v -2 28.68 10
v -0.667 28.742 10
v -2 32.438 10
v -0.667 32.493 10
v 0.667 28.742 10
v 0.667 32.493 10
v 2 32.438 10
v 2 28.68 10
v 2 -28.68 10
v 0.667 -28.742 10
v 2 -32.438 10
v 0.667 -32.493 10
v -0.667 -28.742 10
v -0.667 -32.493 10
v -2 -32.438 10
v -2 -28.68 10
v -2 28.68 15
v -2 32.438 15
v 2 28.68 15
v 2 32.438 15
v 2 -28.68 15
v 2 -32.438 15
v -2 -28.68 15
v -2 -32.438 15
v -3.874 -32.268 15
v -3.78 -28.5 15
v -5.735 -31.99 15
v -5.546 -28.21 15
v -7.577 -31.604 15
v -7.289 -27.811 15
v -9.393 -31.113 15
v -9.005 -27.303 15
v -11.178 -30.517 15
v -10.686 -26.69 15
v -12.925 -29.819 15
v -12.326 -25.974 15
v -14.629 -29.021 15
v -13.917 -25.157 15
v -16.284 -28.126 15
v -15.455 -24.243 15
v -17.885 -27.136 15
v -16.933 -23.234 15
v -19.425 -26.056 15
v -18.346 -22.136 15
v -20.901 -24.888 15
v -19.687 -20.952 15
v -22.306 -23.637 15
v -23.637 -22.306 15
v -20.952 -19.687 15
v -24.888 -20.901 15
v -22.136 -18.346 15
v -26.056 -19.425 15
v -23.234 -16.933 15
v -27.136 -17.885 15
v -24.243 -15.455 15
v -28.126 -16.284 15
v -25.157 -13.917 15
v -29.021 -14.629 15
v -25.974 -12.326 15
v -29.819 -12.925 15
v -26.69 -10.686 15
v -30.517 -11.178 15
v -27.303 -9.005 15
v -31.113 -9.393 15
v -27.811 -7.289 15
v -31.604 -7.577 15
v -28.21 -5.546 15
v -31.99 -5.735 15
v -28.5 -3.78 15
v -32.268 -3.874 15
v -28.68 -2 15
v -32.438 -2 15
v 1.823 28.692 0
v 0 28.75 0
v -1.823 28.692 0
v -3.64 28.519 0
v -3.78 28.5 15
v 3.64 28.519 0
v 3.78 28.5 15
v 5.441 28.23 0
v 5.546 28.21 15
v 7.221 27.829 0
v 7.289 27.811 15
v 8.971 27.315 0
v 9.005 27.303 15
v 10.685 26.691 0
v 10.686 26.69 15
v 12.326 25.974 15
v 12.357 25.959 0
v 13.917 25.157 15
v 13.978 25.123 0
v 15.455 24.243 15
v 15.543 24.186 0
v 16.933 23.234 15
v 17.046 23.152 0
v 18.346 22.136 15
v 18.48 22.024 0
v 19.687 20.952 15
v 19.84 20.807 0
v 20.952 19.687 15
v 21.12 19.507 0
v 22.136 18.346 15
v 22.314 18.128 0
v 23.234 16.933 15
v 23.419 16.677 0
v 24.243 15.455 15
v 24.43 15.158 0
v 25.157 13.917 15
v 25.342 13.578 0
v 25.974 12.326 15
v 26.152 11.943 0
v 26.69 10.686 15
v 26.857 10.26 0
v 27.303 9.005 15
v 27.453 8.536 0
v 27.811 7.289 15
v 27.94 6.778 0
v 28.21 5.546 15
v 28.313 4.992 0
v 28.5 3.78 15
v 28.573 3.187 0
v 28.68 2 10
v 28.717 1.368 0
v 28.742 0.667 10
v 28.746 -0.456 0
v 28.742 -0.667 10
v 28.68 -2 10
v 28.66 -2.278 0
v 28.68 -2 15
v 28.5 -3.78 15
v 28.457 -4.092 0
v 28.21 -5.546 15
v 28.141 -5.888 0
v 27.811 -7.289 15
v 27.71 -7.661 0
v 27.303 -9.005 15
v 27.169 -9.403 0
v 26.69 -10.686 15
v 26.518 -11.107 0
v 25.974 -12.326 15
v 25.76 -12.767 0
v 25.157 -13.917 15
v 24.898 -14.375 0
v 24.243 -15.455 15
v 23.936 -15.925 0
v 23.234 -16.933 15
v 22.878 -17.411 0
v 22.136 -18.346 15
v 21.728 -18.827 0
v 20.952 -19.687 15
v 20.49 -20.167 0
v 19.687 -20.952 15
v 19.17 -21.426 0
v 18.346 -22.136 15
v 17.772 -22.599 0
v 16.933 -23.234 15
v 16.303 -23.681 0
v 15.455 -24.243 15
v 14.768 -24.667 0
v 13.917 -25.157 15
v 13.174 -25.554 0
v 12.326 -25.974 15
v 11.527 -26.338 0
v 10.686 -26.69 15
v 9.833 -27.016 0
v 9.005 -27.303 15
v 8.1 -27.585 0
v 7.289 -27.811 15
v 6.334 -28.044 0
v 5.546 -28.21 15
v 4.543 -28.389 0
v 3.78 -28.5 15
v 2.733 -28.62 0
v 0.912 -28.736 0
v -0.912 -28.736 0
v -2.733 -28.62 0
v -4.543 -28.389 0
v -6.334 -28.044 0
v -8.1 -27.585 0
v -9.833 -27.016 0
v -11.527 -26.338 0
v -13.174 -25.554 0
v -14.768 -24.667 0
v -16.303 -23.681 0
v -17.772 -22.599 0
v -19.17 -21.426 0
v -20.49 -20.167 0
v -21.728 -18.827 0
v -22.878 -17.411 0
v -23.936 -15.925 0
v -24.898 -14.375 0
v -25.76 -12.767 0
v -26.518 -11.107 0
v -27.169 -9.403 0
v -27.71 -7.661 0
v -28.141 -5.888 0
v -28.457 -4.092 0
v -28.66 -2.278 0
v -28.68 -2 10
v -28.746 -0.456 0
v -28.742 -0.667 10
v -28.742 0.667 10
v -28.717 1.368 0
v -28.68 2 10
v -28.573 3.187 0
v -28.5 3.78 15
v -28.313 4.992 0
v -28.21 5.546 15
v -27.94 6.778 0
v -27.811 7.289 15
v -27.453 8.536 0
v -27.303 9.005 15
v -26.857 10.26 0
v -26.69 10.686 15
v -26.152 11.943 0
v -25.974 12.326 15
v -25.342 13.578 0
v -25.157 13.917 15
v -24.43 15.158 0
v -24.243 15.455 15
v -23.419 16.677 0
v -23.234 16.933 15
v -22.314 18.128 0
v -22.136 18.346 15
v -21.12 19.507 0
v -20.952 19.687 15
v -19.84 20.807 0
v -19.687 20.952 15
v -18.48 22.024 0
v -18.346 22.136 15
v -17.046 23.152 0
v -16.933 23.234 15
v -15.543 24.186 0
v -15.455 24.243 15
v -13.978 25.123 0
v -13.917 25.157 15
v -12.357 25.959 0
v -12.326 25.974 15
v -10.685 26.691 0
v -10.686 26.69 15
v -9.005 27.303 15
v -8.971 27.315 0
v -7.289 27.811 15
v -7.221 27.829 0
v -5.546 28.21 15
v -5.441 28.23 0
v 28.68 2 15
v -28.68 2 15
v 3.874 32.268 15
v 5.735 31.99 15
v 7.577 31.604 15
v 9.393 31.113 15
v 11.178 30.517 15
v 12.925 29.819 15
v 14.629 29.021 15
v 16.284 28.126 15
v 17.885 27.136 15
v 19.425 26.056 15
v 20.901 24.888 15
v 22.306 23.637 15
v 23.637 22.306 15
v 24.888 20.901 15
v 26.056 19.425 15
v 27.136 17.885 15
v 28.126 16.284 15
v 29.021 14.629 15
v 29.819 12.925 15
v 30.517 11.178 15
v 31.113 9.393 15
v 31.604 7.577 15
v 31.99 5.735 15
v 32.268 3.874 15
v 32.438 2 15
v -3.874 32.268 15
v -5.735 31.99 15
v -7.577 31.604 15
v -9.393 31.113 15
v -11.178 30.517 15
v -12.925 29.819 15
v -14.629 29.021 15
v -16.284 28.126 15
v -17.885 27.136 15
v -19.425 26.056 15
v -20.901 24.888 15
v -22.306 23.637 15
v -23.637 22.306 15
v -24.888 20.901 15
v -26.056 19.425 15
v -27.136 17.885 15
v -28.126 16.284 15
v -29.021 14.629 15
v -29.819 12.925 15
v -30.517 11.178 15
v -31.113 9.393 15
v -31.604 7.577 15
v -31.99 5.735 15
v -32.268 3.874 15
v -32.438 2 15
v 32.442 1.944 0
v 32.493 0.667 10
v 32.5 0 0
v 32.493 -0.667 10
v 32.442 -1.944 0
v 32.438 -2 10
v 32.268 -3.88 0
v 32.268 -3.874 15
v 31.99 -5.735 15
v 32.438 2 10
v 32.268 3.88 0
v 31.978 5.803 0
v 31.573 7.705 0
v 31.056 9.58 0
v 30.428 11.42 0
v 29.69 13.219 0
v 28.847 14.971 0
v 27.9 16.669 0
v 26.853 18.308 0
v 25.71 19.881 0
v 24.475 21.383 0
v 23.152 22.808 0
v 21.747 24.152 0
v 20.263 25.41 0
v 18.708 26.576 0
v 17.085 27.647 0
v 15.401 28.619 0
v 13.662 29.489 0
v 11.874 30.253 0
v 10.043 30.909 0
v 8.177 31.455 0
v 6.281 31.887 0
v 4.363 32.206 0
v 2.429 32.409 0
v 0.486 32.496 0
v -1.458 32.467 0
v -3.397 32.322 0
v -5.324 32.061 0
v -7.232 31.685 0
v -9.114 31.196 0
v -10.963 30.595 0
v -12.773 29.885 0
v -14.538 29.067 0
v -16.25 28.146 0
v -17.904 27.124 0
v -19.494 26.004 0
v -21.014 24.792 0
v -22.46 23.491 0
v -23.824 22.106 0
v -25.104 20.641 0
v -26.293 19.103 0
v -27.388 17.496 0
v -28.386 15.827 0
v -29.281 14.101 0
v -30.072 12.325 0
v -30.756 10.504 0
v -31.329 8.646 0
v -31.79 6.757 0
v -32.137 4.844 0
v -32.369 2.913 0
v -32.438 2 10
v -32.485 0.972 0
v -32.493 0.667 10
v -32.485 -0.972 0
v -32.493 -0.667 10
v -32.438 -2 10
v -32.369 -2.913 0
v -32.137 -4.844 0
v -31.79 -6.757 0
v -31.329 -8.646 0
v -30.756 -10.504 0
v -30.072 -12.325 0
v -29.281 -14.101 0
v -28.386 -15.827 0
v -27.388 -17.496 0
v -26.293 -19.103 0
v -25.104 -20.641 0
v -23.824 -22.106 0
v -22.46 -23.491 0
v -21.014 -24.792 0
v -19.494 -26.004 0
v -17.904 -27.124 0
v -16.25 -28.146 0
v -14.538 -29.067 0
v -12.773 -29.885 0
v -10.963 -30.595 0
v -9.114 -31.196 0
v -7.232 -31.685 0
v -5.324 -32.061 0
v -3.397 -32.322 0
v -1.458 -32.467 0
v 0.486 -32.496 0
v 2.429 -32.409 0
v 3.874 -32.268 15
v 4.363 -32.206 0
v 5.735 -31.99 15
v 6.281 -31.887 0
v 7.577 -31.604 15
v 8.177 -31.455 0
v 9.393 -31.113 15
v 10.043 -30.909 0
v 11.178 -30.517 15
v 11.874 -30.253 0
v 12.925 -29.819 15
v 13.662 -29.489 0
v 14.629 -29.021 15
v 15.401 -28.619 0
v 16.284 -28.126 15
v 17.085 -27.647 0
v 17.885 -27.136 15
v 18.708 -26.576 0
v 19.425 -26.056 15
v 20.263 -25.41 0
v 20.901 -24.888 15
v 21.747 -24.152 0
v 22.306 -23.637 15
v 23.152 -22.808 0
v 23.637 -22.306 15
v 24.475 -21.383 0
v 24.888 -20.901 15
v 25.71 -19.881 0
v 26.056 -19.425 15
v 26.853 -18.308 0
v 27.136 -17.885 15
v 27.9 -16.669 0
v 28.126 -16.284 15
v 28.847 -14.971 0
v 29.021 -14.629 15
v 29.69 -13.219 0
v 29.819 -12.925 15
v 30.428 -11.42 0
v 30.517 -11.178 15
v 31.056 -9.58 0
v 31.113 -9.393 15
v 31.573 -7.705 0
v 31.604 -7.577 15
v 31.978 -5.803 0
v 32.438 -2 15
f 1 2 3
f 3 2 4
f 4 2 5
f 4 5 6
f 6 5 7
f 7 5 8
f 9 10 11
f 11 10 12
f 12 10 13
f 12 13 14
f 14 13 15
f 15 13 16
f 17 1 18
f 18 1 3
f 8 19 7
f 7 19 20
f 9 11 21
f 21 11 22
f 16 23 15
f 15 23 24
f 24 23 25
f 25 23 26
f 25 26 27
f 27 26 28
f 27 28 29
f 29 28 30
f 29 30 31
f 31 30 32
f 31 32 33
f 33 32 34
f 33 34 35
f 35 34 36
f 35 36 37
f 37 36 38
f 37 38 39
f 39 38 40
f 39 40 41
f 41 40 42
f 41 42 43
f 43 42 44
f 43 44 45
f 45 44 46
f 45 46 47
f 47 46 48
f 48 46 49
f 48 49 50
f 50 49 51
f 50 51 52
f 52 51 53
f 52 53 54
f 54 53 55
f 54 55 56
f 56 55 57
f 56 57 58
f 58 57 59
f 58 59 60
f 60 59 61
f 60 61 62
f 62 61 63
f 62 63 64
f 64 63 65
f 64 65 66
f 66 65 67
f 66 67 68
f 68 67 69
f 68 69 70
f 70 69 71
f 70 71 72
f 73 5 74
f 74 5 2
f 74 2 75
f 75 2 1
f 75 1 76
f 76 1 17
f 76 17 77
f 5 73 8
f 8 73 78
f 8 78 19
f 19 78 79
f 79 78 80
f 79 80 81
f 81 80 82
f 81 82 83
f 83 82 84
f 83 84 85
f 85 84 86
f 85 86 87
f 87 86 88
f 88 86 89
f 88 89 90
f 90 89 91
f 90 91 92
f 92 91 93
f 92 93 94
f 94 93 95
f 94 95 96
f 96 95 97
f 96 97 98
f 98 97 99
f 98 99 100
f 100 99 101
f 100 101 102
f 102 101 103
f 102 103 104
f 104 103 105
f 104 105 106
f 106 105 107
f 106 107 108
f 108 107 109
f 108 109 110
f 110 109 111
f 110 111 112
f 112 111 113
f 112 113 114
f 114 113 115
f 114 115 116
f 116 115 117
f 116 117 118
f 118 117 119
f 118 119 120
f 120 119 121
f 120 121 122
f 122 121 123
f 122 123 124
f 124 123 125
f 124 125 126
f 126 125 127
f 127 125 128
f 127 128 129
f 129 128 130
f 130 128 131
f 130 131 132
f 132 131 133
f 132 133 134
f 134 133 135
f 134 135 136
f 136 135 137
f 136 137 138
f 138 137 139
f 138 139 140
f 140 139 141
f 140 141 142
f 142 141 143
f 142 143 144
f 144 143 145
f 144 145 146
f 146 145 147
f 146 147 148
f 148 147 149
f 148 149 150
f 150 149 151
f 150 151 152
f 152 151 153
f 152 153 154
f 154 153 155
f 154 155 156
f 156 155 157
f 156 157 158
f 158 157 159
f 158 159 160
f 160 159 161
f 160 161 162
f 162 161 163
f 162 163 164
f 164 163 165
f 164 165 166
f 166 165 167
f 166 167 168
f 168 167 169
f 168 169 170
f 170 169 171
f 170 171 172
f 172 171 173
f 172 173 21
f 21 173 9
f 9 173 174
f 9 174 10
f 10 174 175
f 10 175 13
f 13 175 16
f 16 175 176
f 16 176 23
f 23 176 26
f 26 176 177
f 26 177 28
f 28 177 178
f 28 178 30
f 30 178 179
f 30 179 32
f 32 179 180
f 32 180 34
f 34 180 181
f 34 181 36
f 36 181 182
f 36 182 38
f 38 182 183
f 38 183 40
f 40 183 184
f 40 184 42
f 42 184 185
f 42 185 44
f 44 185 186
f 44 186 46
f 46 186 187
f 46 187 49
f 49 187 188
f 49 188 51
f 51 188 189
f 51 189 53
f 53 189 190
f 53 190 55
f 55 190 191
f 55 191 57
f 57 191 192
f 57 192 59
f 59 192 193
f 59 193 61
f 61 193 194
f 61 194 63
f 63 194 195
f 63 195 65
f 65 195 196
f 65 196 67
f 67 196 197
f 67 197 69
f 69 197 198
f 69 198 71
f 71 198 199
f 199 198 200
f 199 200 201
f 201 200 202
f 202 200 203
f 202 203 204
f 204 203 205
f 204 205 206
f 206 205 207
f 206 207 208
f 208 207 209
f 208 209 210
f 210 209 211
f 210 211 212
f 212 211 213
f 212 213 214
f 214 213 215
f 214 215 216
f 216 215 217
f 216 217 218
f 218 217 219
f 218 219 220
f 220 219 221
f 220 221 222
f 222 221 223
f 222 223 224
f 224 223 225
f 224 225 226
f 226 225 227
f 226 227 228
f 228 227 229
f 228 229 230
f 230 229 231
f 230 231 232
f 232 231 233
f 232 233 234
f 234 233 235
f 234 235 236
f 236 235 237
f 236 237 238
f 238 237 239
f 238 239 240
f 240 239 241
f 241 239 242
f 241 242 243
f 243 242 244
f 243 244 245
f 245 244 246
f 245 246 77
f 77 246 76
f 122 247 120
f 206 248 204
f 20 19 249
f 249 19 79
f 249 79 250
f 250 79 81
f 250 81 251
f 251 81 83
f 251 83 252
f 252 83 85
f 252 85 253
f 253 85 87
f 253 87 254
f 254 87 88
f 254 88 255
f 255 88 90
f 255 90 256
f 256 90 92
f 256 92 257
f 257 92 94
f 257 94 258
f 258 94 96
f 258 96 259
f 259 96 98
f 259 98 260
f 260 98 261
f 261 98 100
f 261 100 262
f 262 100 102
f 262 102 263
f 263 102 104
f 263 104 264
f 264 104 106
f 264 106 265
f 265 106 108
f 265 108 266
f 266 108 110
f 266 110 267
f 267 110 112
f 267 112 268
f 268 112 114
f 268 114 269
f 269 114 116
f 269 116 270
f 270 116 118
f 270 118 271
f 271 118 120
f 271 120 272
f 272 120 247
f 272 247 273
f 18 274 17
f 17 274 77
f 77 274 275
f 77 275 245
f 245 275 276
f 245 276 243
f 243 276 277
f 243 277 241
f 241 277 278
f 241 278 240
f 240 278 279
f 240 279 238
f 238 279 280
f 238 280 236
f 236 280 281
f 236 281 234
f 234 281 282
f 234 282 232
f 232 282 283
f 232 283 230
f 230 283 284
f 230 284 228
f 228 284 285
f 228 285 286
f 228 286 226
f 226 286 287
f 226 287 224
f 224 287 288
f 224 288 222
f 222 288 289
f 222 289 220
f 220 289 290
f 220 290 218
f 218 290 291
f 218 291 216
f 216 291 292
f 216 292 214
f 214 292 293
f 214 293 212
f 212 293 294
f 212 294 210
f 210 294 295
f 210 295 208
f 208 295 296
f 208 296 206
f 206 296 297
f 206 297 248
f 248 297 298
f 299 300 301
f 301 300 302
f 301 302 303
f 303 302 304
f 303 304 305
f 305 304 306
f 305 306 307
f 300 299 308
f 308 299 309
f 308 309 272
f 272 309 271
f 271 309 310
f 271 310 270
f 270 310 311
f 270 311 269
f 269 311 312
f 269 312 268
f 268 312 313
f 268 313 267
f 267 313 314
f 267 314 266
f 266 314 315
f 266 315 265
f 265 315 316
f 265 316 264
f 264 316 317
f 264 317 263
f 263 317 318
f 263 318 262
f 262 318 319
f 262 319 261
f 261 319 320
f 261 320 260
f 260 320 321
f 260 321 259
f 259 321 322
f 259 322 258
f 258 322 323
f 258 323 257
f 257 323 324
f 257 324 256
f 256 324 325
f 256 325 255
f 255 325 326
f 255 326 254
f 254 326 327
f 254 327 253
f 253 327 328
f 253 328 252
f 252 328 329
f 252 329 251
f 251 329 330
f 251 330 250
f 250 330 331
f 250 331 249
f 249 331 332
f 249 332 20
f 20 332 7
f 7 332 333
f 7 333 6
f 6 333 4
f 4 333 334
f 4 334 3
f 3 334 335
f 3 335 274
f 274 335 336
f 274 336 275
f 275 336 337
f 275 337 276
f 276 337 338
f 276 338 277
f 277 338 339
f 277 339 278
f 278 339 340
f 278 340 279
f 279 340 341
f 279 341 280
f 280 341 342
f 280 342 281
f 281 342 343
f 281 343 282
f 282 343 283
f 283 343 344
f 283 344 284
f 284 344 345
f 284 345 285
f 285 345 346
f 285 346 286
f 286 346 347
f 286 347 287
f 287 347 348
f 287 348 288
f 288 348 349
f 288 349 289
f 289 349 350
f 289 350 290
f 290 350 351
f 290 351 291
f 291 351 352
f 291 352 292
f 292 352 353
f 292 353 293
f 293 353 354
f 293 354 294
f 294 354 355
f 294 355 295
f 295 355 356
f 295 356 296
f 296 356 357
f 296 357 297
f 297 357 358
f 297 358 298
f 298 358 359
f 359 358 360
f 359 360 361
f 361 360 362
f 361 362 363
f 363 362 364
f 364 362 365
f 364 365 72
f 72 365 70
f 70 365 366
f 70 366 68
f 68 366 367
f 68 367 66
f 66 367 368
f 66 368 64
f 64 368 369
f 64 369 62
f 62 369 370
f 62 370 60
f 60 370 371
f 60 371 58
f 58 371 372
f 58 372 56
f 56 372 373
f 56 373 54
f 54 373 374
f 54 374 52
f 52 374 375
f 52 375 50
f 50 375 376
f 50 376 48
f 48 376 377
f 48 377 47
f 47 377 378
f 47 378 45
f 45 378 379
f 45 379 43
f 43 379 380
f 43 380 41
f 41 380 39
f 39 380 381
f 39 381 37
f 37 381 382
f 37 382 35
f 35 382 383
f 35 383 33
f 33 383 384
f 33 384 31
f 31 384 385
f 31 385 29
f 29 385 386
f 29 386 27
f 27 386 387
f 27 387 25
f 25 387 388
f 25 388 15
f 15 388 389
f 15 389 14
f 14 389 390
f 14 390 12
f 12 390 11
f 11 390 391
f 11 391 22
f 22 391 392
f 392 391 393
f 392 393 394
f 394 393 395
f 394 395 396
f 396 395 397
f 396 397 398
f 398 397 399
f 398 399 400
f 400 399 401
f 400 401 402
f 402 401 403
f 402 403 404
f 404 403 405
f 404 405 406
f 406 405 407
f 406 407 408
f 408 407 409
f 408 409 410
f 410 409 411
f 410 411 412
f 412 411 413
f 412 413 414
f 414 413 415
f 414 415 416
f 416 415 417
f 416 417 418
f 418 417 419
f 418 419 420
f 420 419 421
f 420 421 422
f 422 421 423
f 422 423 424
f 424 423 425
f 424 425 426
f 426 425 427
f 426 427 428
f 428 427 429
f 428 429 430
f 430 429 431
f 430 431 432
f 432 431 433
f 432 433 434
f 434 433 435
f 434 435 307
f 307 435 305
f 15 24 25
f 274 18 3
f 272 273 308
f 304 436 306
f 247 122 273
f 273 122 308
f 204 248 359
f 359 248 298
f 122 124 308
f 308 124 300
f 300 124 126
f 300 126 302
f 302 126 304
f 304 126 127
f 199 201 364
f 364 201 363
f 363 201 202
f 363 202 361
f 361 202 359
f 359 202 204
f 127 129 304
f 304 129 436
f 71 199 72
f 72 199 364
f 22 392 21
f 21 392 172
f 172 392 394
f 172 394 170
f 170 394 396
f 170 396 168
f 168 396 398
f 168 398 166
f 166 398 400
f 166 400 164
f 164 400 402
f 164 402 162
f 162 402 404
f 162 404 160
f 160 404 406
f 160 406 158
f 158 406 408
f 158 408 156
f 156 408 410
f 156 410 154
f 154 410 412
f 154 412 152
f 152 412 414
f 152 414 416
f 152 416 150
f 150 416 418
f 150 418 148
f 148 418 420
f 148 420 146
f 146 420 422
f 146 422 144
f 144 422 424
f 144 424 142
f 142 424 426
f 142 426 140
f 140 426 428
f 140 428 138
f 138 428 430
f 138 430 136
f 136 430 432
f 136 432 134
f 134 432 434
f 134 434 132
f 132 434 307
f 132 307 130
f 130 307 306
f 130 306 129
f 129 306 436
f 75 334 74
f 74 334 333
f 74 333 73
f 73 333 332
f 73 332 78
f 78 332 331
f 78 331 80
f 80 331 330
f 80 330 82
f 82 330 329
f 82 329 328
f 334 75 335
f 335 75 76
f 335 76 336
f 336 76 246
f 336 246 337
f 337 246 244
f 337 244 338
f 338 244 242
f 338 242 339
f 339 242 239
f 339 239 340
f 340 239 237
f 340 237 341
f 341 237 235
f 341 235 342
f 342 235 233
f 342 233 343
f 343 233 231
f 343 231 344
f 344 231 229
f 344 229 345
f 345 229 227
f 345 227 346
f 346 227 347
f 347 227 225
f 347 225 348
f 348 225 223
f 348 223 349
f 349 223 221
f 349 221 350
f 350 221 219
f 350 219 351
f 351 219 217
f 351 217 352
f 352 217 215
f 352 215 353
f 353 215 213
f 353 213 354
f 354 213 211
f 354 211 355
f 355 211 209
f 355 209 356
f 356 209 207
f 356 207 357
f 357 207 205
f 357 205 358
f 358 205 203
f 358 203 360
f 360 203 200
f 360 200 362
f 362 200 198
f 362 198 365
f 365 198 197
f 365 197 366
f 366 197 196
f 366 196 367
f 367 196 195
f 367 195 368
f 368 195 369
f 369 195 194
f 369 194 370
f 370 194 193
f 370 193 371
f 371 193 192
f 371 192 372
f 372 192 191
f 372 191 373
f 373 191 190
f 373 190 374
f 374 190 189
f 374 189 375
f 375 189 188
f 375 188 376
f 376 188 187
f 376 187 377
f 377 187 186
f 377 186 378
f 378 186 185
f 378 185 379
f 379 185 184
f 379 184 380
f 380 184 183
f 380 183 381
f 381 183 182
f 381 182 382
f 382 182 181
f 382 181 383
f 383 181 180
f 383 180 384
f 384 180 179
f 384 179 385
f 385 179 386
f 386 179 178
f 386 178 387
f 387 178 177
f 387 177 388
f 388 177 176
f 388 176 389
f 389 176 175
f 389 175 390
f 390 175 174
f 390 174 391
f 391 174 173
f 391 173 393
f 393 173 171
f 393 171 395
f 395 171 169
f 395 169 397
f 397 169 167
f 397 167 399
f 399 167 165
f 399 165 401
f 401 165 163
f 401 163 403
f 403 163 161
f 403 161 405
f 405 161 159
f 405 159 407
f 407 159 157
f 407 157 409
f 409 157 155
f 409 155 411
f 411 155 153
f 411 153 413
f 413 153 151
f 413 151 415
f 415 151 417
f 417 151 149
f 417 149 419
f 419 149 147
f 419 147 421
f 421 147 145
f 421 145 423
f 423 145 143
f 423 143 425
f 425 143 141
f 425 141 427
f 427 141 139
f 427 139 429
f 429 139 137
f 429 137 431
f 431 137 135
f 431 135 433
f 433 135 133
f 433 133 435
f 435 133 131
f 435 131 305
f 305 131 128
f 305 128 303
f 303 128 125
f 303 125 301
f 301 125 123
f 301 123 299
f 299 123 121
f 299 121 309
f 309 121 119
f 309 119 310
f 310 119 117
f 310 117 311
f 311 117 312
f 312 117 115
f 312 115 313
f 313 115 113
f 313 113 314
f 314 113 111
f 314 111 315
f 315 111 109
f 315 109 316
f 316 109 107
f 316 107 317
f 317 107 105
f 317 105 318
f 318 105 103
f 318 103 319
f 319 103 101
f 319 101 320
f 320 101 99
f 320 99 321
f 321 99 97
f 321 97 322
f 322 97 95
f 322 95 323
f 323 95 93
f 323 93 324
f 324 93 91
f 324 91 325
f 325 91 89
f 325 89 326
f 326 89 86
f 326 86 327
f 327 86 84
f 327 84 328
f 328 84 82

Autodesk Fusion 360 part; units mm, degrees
cylinder "CylinderPrimitive1" add diameter 65 height 15 placed x (1, 0, 0) y (0, 1, 0) z (0, 0, 1) at (0, 0, 0)
cylinder "CylinderPrimitive2" cut diameter 57.5 height -15 placed x (1, 0, 0) y (0, 1, 0) z (0, 0, 1) at (0, 0, 15)
sketch "Sketch5" plane through (0, 0, 0) normal (0, 1, 0) x (1, 0, 0)
  line L0 (0, -15) -> (0, 0)
  line L1 (-2, -15) -> (2, -15)
  line L2 (2, -15) -> (2, -10)
  line L3 (2, -10) -> (-2, -10)
  line L4 (-2, -10) -> (-2, -15)
sketch "Sketch6" plane through (0, 0, 0) normal (1, 0, 0) x (0, 1, 0)
  line L0 (0, 15) -> (0, 0)
  line L1 (-2, 15) -> (2, 15)
  line L2 (2, 15) -> (2, 10)
  line L3 (2, 10) -> (-2, 10)
  line L4 (-2, 10) -> (-2, 15)
extrude "Extrude1" cut sketch "Sketch6" along normal through all and the other way through all
extrude "Extrude2" cut sketch "Sketch5" along normal through all and the other way through all
